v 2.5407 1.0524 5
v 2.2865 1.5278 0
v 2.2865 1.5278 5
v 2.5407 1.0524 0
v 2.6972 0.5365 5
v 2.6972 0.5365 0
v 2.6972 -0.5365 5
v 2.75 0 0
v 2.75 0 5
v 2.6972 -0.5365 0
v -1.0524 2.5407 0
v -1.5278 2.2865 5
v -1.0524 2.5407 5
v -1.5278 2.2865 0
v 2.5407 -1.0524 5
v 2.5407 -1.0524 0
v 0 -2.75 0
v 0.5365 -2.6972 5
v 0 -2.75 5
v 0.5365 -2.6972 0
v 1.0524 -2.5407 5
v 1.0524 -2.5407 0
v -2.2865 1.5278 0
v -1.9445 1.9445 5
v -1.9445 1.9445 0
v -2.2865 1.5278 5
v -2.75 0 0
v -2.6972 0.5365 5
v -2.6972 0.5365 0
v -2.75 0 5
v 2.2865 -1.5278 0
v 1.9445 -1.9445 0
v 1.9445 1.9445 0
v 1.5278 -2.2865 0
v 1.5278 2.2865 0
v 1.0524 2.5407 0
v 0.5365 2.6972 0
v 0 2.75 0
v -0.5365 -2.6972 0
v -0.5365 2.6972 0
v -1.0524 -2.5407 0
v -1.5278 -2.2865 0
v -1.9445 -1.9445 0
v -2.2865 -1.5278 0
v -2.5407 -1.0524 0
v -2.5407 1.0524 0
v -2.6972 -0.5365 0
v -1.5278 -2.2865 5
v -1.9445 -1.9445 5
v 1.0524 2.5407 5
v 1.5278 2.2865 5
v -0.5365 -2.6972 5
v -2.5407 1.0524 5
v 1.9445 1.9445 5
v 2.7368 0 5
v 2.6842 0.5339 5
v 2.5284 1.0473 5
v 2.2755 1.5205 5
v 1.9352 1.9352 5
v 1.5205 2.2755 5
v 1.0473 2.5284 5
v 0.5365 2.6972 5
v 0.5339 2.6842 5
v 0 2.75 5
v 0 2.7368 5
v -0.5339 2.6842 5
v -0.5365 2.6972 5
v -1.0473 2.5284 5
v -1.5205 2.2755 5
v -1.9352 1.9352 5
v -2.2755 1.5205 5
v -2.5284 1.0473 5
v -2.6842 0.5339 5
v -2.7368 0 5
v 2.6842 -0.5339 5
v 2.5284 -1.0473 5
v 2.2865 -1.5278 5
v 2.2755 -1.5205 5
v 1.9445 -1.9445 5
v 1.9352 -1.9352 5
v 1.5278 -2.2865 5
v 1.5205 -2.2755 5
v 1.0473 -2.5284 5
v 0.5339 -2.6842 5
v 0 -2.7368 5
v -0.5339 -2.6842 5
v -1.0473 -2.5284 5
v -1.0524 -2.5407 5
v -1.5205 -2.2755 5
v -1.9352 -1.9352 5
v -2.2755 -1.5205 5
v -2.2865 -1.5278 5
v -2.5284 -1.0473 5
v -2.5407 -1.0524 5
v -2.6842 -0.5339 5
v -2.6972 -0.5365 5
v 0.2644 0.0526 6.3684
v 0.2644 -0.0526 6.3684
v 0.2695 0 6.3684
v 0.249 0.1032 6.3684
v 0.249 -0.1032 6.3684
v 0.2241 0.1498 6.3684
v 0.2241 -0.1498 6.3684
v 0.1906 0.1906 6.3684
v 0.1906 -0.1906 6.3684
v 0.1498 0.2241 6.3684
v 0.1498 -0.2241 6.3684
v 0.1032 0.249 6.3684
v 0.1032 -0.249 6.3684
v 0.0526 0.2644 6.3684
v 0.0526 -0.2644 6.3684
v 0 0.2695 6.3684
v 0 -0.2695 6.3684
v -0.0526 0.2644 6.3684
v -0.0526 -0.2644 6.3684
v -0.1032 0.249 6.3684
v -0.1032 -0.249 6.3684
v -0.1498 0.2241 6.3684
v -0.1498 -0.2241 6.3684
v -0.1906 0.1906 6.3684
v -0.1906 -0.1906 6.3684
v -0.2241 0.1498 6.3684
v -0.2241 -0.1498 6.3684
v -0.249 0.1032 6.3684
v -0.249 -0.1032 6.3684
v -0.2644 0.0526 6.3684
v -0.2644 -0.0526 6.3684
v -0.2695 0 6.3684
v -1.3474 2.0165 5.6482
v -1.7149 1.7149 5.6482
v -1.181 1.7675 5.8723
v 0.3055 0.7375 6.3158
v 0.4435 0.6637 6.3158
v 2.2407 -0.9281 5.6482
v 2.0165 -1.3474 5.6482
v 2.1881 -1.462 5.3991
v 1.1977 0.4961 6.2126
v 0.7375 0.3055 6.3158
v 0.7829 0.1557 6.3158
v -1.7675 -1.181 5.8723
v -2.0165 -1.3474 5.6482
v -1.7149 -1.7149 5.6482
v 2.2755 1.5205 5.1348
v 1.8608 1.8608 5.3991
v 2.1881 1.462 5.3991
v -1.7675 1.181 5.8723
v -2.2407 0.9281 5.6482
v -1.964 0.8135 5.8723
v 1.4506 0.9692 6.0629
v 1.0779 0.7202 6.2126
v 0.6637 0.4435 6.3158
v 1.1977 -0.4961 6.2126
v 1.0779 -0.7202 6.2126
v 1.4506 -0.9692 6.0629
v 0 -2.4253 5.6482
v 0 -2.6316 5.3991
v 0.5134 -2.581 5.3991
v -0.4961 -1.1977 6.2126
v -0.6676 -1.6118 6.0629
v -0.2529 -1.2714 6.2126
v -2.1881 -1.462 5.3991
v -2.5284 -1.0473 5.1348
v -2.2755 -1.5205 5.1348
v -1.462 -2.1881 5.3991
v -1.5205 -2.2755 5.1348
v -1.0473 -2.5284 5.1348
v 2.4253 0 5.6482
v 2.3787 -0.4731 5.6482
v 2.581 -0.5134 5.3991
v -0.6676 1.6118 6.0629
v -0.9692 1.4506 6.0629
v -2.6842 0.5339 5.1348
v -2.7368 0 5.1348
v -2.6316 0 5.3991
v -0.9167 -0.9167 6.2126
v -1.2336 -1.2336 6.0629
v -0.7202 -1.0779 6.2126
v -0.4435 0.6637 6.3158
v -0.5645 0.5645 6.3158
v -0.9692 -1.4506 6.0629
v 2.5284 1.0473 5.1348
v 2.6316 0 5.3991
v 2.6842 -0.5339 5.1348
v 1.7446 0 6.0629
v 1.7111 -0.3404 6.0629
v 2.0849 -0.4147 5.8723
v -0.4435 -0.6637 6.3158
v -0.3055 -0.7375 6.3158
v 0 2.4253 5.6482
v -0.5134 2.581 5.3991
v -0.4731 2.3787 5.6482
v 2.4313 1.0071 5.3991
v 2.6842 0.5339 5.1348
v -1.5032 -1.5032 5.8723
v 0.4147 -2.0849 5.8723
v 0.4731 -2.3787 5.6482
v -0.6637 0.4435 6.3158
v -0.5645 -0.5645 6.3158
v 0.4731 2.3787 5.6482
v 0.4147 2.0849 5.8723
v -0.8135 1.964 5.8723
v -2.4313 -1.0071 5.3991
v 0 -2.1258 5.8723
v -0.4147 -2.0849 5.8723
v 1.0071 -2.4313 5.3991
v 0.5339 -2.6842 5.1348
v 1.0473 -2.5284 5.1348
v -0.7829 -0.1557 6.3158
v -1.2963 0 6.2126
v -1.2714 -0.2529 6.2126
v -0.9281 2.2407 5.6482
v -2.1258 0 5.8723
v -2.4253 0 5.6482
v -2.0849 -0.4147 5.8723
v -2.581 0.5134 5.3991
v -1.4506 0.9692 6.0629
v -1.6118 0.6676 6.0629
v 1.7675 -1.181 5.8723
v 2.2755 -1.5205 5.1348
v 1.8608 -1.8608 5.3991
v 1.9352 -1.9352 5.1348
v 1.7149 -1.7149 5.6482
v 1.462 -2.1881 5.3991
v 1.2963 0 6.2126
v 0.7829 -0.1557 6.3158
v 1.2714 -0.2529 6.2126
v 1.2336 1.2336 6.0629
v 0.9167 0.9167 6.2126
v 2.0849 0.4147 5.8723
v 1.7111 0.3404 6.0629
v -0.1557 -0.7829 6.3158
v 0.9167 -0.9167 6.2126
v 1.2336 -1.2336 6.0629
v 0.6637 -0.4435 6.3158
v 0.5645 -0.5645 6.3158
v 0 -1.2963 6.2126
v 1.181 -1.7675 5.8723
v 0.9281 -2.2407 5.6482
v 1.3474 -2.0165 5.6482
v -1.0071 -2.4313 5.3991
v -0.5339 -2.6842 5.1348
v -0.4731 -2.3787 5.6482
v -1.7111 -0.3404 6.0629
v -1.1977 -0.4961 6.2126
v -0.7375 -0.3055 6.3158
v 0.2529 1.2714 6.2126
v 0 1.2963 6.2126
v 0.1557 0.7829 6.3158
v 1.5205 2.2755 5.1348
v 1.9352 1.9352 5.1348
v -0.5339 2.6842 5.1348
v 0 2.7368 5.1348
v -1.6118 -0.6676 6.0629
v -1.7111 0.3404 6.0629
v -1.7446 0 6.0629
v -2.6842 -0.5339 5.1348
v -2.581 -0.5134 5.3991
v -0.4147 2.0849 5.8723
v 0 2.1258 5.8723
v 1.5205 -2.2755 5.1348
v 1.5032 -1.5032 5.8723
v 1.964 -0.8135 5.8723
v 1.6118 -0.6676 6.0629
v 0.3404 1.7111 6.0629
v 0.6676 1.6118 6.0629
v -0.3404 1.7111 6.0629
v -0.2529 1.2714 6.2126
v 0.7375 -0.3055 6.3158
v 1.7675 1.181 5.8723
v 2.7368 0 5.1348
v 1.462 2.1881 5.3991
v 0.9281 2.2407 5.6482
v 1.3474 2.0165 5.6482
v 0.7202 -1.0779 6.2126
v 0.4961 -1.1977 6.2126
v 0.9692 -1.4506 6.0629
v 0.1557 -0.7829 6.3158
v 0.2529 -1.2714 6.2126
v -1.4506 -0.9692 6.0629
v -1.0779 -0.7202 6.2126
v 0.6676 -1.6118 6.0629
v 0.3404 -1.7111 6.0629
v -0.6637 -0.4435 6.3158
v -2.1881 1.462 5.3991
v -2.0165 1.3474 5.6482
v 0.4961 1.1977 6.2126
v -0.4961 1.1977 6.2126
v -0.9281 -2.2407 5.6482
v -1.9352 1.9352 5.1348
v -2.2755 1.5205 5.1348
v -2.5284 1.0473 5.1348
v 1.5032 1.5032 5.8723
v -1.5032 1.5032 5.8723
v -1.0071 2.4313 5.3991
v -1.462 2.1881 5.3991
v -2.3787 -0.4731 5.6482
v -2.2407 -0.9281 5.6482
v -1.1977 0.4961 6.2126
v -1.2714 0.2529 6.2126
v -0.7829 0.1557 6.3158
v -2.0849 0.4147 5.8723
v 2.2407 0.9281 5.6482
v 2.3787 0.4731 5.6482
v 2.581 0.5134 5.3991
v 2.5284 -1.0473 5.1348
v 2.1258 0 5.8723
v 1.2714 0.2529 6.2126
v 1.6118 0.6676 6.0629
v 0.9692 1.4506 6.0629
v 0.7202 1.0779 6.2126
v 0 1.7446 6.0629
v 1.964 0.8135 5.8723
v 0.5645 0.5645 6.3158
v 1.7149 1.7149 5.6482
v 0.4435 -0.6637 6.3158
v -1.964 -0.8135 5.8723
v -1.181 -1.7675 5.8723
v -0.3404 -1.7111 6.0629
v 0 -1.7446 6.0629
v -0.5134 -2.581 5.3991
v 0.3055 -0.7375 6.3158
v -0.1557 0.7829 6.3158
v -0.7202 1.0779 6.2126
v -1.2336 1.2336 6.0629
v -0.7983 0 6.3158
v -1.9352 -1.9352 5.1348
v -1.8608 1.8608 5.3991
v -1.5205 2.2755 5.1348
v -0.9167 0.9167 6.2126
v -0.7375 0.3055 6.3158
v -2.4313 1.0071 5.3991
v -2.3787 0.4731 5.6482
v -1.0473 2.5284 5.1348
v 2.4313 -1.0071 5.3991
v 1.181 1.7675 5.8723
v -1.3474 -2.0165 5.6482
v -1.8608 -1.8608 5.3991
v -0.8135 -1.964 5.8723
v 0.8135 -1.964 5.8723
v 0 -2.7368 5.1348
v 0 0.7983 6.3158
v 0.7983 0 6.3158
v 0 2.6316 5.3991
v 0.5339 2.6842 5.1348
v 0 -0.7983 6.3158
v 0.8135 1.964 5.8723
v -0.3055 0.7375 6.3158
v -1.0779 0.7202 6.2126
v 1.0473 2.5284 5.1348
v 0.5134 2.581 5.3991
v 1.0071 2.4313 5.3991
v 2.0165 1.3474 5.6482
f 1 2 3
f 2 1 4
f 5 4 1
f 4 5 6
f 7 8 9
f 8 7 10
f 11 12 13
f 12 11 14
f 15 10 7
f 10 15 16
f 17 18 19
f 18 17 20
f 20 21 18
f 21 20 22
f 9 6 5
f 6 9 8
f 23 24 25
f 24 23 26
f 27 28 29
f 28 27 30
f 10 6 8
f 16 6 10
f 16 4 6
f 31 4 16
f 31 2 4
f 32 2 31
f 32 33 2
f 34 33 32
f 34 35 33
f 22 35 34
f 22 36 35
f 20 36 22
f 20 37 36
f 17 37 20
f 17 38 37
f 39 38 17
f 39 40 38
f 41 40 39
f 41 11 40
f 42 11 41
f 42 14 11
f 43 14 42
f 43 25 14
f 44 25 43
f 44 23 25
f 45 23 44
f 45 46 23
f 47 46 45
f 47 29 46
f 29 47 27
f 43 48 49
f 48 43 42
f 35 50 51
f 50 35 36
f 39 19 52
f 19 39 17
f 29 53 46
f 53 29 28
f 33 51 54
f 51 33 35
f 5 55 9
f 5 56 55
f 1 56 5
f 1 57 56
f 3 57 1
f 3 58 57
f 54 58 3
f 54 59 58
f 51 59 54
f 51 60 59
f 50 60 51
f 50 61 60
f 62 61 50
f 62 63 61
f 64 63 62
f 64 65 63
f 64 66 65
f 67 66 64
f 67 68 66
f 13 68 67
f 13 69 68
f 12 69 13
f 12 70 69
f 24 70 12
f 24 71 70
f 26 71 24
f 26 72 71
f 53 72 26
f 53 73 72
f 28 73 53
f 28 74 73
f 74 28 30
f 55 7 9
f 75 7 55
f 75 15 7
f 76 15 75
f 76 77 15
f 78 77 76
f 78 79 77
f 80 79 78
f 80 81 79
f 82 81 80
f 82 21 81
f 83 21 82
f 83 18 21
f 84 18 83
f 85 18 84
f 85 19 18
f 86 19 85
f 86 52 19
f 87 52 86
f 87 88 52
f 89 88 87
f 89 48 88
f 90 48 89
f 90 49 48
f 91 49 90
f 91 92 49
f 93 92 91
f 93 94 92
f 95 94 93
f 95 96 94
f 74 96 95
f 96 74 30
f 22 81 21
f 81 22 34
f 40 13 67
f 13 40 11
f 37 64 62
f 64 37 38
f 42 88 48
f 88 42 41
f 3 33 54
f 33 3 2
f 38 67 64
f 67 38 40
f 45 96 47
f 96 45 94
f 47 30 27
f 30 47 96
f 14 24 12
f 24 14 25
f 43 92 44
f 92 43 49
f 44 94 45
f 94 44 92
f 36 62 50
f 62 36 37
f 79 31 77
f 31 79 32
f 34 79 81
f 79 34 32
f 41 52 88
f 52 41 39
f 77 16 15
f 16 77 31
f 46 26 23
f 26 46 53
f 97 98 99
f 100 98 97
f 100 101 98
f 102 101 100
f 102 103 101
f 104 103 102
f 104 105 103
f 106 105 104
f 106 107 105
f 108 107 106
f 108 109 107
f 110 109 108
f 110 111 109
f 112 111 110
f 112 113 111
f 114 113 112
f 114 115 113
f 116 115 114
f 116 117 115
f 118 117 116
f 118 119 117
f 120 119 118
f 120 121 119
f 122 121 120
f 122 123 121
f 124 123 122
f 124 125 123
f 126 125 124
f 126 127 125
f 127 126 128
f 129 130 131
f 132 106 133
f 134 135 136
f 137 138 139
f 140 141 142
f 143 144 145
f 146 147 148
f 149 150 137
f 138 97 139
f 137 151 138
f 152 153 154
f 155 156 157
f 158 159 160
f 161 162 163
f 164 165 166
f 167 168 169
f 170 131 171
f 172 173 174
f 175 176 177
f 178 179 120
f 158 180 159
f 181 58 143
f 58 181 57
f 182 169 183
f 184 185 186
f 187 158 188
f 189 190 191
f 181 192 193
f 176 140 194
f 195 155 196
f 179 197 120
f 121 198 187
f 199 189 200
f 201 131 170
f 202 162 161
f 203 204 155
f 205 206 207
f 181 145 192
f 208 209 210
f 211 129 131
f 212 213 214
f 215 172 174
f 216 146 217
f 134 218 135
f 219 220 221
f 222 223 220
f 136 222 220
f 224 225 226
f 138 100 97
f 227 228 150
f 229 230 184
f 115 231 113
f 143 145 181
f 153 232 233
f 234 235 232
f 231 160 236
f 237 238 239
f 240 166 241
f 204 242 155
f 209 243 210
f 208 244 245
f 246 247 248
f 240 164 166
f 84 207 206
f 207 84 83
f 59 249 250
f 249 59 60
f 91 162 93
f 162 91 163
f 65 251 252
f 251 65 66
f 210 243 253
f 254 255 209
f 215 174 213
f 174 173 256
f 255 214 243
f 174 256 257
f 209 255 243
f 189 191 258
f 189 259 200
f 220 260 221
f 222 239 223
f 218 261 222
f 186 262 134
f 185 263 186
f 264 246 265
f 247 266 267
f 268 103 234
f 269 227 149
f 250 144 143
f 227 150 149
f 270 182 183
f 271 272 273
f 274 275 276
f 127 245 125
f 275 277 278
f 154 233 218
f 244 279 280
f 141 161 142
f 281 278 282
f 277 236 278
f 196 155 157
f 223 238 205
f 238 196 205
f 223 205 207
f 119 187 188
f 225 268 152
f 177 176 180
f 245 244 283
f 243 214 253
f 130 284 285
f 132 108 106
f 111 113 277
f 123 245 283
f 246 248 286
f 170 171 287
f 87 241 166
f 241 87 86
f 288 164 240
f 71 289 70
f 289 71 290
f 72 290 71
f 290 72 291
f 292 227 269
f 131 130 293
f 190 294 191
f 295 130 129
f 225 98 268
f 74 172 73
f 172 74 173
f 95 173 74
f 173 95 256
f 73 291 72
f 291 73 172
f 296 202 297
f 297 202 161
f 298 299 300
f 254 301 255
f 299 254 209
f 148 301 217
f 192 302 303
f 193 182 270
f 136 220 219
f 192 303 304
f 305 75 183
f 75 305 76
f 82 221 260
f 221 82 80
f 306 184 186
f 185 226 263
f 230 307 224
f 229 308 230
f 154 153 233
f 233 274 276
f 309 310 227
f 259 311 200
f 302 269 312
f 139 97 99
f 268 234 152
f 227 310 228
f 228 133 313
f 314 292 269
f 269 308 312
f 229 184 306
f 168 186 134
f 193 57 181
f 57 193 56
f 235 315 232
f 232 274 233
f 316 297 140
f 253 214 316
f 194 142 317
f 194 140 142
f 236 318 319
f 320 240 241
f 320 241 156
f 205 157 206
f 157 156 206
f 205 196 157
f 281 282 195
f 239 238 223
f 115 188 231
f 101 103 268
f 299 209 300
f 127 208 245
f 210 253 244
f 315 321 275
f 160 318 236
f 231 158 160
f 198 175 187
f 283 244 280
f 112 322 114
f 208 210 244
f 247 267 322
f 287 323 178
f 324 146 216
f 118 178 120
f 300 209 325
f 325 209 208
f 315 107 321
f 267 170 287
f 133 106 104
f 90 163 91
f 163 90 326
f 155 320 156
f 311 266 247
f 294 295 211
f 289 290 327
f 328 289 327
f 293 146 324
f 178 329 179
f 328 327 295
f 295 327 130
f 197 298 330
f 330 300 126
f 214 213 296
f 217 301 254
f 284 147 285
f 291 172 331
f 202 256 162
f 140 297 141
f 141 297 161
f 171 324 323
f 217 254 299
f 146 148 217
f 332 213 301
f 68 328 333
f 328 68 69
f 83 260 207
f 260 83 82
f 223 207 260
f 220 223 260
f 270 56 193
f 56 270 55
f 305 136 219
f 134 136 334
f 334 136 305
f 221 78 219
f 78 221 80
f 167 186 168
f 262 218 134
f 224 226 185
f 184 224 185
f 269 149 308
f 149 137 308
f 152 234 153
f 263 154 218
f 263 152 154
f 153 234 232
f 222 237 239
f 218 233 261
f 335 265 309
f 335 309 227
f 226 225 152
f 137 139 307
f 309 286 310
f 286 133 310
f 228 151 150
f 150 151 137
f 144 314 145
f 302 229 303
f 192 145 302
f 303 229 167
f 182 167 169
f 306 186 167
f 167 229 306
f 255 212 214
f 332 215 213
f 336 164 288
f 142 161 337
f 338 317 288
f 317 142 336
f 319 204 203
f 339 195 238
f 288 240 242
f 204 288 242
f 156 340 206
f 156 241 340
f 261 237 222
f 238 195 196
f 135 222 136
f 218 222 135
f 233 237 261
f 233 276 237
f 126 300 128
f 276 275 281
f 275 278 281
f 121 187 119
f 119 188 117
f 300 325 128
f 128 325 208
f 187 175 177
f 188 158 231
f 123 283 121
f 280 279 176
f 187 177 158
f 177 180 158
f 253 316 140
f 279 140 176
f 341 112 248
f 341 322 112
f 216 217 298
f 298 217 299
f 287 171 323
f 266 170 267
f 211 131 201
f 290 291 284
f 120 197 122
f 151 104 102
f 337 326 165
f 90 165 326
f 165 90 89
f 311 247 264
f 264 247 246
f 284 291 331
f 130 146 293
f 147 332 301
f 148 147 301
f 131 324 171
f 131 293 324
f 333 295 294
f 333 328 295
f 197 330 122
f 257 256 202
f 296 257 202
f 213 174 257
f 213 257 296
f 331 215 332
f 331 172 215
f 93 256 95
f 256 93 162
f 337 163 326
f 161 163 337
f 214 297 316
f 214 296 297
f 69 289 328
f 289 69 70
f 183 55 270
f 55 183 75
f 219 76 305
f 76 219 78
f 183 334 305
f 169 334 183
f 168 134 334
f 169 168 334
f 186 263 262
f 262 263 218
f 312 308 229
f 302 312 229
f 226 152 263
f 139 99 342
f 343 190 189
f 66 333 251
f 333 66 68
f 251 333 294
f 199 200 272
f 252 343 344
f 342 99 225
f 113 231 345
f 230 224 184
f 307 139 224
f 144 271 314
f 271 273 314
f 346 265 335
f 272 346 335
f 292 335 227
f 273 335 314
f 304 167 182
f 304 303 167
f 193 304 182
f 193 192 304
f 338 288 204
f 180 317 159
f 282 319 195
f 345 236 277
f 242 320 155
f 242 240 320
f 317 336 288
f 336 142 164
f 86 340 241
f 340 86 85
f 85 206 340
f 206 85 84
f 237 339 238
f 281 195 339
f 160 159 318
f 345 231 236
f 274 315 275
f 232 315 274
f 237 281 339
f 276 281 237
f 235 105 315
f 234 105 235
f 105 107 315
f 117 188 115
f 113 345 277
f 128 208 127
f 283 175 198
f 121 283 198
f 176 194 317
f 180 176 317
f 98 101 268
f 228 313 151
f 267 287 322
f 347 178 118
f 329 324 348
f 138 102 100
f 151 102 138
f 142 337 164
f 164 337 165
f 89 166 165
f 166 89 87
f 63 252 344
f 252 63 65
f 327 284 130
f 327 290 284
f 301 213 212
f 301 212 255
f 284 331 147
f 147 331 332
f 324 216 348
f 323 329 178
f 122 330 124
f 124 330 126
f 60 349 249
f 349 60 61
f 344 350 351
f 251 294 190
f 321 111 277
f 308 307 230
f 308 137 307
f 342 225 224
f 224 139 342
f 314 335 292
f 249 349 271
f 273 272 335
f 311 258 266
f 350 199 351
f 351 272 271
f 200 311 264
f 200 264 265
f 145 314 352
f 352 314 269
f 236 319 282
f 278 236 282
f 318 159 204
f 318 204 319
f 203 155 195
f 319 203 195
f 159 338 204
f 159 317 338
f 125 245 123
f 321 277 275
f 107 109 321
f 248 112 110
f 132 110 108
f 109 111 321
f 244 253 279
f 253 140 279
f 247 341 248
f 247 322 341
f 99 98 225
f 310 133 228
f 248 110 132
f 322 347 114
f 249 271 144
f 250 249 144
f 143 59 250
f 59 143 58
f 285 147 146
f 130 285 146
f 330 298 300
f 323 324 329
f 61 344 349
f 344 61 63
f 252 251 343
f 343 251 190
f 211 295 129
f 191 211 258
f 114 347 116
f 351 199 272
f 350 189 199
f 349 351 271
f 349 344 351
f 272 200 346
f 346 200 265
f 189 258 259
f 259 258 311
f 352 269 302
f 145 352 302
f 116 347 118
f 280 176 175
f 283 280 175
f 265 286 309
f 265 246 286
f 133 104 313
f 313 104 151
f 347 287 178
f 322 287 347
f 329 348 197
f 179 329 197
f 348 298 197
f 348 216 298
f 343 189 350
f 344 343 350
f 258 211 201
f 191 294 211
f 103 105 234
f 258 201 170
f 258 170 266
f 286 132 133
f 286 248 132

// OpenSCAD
h=5;
dia=5.5;
$fn=32;

cylinder(h=h,d=dia);
translate([0,0,h])scale([1,1,0.5])sphere(dia/2);
